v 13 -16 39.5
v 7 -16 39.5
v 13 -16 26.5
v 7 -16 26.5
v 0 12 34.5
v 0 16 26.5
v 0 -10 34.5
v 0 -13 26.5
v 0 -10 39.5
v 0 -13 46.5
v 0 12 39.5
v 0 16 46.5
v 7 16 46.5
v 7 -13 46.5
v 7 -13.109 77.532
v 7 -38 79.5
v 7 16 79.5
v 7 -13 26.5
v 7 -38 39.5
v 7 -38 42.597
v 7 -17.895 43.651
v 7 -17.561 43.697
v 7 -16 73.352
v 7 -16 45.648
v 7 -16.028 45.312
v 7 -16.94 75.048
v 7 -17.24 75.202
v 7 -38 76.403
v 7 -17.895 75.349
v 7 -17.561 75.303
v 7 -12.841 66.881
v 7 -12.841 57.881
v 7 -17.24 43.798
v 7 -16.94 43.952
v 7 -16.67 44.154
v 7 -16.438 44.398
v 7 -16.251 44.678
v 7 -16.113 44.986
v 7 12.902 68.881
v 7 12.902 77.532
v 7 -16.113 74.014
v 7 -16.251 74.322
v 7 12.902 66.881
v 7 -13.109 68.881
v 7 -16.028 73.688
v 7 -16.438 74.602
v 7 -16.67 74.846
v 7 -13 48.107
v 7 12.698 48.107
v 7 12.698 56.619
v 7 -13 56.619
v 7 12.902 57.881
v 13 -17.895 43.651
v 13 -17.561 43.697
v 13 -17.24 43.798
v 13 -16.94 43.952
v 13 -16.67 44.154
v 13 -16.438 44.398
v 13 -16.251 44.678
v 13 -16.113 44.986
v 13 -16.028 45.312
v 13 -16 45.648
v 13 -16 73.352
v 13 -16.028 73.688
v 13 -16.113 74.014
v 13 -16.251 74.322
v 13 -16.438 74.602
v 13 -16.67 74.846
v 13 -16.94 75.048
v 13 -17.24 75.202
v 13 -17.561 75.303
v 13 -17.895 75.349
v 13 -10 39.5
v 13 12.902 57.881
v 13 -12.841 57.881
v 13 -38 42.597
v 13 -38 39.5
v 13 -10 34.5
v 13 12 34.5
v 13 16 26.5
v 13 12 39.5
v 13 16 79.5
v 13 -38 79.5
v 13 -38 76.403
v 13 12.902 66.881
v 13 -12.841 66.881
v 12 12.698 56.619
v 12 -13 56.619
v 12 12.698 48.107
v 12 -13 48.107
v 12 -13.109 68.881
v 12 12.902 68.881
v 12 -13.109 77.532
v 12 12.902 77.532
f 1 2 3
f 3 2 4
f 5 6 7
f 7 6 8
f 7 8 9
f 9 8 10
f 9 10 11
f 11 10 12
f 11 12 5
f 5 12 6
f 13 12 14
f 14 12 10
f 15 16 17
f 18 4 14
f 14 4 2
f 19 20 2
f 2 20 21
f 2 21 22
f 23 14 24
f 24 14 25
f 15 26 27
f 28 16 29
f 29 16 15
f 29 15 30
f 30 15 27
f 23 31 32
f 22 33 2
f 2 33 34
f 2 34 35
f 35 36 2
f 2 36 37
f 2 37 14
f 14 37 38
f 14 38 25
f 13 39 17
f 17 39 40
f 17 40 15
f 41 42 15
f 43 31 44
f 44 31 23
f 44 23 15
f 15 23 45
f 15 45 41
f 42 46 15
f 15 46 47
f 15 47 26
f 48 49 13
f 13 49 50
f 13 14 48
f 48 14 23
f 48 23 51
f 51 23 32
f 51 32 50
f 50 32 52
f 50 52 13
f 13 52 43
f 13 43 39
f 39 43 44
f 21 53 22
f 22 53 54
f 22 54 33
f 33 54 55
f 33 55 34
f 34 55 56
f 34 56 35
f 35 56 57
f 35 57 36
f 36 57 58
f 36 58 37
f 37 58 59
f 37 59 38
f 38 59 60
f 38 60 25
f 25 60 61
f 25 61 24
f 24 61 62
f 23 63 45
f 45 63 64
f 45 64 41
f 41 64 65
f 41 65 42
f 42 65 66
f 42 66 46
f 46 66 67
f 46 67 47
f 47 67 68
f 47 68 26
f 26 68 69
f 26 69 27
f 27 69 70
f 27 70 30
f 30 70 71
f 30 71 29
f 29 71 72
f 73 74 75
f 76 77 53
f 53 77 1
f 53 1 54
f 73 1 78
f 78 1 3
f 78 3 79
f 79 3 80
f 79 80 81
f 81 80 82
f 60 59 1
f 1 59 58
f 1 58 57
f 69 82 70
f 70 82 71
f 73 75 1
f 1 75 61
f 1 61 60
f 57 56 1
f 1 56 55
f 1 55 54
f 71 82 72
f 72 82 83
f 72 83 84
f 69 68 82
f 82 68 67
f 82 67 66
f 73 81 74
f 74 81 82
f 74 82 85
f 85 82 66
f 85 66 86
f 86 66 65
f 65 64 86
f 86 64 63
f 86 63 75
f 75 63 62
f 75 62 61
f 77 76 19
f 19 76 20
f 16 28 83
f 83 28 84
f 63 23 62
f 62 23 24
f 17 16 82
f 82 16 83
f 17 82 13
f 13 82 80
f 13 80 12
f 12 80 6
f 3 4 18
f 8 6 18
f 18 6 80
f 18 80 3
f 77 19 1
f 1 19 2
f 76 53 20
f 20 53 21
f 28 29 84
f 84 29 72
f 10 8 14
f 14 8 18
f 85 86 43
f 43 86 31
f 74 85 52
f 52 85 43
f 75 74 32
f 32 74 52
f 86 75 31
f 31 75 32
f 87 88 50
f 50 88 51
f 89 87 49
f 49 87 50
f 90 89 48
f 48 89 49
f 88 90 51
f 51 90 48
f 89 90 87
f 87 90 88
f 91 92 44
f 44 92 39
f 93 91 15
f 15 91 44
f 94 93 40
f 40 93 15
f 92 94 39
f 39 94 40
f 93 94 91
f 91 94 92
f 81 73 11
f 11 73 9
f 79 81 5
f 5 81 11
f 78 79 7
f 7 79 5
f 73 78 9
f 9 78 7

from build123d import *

# Parameters (mm, degrees)
SKETCH1_W           = 53
SKETCH1_H           = 32
BOSS_EXTRUDE1_DEPTH = 13
SKETCH7_W           = 7
SKETCH7_H           = 40
CUT_EXTRUDE3_DEPTH  = 44.534469102
SKETCH8_W           = 6
SKETCH8_H           = 40
BOSS_EXTRUDE2_DEPTH = 22
SKETCH20_W          = 6
SKETCH20_H          = 31.5
CUT_EXTRUDE9_DEPTH  = 44.534469102
CUT_EXTRUDE9_DRAFT  = -3
FILLET1_R           = 2
FILLET2_R           = 2
SKETCH49_W          = 7
SKETCH49_H          = 32
BOSS_EXTRUDE3_DEPTH = 7
SKETCH50_W          = 7
SKETCH50_H          = 20
CUT_EXTRUDE19_DEPTH = 3
SKETCH35_W          = 9
SKETCH35_H          = 25.742086546
CUT_EXTRUDE15_DEPTH = 47.853495067
SKETCH36_W          = 8.51187264
SKETCH36_H          = 25.698199293
CUT_EXTRUDE16_DEPTH = 5
SKETCH55_W          = 8.650111134
SKETCH55_H          = 26.010357873
CUT_EXTRUDE20_DEPTH = 5
SKETCH63_W          = 5
SKETCH63_H          = 22
CUT_EXTRUDE21_DEPTH = 49.117044797


with BuildPart() as part:
    # Sketch1 → Boss-Extrude1 (new body)
    with BuildSketch(Plane(origin=(0, 0, 0), x_dir=(0, 0, -1), z_dir=(1, 0, 0))):
        Rectangle(SKETCH1_W, SKETCH1_H)
    extrude(amount=BOSS_EXTRUDE1_DEPTH)

    # Sketch7 → Cut-Extrude3 (cut, through all)
    with BuildSketch(Plane(origin=(0, 16, 0), x_dir=(1, 0, 0), z_dir=(0, 1, 0))):
        with Locations((3.5, 6.5)):
            Rectangle(SKETCH7_W, SKETCH7_H)
    extrude(amount=-CUT_EXTRUDE3_DEPTH, mode=Mode.SUBTRACT)

    # Sketch8 → Boss-Extrude2 (add)
    with BuildSketch(Plane.XZ.offset(16)):
        with Locations((10, -6.5)):
            Rectangle(SKETCH8_W, SKETCH8_H)
    extrude(amount=BOSS_EXTRUDE2_DEPTH)


with BuildPart() as cut_extrude9_tool:
    # Sketch20 → Cut-Extrude9 (with draft: the straight prism first)
    with BuildSketch(Plane(origin=(0, -16, 0), x_dir=(-1, 0, 0), z_dir=(0, -1, 0))):
        with Locations((-10, 6.5)):
            Rectangle(SKETCH20_W, SKETCH20_H)
    extrude(amount=CUT_EXTRUDE9_DEPTH)
    # Cut-Extrude9: the draft: its side faces are tilted about the plane it starts from
    cut_extrude9_sides = [cut_extrude9_tool.faces().sort_by_distance(p)[0] for p in [
        (10, -38.267234551, 9.25),
        (7, -38.267234551, -6.5),
        (10, -38.267234551, -22.25),
        (13, -38.267234551, -6.5),
    ]]
    draft(cut_extrude9_sides, Plane(origin=(0, -16, 0), x_dir=(-1, 0, 0), z_dir=(0, -1, 0)), CUT_EXTRUDE9_DRAFT)


with BuildPart() as part_1:
    add(part.part)

    # Cut-Extrude9: cut by cut_extrude9_tool
    add(cut_extrude9_tool.part, mode=Mode.SUBTRACT)

    # Fillet1
    fillet1_edges = [part_1.edges().sort_by_distance(p)[0] for p in [
        (10, -16, -22.25),
    ]]
    fillet(fillet1_edges, radius=FILLET1_R)

    # Fillet2
    fillet2_edges = [part_1.edges().sort_by_distance(p)[0] for p in [
        (10, -16, 9.25),
    ]]
    fillet(fillet2_edges, radius=FILLET2_R)

    # Sketch49 → Boss-Extrude3 (add)
    with BuildSketch(Plane(origin=(0, 0, 13.5), x_dir=(-1, 0, 0), z_dir=(0, 0, -1))):
        with Locations((-3.5, 0)):
            Rectangle(SKETCH49_W, SKETCH49_H)
    extrude(amount=BOSS_EXTRUDE3_DEPTH)

    # Sketch50 → Cut-Extrude19 (cut)
    with BuildSketch(Plane.XZ.offset(16)):
        with Locations((3.5, 16.5)):
            Rectangle(SKETCH50_W, SKETCH50_H)
    extrude(amount=-CUT_EXTRUDE19_DEPTH, mode=Mode.SUBTRACT)

    # Sketch35 → Cut-Extrude15 (cut, through all)
    with BuildSketch(Plane.ZY.offset(-7)):
        with Locations((-9.381446742, 0.030527838)):
            Rectangle(SKETCH35_W, SKETCH35_H)
    extrude(amount=-CUT_EXTRUDE15_DEPTH, mode=Mode.SUBTRACT)

    # Sketch36 → Cut-Extrude16 (cut)
    with BuildSketch(Plane.ZY.offset(-7)):
        with Locations((0.636992311, -0.150900353)):
            Rectangle(SKETCH36_W, SKETCH36_H)
    extrude(amount=-CUT_EXTRUDE16_DEPTH, mode=Mode.SUBTRACT)

    # Sketch55 → Cut-Extrude20 (cut)
    with BuildSketch(Plane.ZY.offset(-7)):
        with Locations((-20.206502309, -0.103607826)):
            Rectangle(SKETCH55_W, SKETCH55_H)
    extrude(amount=-CUT_EXTRUDE20_DEPTH, mode=Mode.SUBTRACT)

    # Sketch63 → Cut-Extrude21 (cut, through all)
    with BuildSketch(Plane.ZY):
        with Locations((16, 1)):
            Rectangle(SKETCH63_W, SKETCH63_H)
    extrude(amount=-CUT_EXTRUDE21_DEPTH, mode=Mode.SUBTRACT)


with BuildPart() as body_2:
    # Mirror1: mirrored copy
    add(part_1.part.mirror(Plane(origin=(13, 16, 26.5), x_dir=(1, 0, 0), z_dir=(0, 0, -1))))


solid = body_2.part
